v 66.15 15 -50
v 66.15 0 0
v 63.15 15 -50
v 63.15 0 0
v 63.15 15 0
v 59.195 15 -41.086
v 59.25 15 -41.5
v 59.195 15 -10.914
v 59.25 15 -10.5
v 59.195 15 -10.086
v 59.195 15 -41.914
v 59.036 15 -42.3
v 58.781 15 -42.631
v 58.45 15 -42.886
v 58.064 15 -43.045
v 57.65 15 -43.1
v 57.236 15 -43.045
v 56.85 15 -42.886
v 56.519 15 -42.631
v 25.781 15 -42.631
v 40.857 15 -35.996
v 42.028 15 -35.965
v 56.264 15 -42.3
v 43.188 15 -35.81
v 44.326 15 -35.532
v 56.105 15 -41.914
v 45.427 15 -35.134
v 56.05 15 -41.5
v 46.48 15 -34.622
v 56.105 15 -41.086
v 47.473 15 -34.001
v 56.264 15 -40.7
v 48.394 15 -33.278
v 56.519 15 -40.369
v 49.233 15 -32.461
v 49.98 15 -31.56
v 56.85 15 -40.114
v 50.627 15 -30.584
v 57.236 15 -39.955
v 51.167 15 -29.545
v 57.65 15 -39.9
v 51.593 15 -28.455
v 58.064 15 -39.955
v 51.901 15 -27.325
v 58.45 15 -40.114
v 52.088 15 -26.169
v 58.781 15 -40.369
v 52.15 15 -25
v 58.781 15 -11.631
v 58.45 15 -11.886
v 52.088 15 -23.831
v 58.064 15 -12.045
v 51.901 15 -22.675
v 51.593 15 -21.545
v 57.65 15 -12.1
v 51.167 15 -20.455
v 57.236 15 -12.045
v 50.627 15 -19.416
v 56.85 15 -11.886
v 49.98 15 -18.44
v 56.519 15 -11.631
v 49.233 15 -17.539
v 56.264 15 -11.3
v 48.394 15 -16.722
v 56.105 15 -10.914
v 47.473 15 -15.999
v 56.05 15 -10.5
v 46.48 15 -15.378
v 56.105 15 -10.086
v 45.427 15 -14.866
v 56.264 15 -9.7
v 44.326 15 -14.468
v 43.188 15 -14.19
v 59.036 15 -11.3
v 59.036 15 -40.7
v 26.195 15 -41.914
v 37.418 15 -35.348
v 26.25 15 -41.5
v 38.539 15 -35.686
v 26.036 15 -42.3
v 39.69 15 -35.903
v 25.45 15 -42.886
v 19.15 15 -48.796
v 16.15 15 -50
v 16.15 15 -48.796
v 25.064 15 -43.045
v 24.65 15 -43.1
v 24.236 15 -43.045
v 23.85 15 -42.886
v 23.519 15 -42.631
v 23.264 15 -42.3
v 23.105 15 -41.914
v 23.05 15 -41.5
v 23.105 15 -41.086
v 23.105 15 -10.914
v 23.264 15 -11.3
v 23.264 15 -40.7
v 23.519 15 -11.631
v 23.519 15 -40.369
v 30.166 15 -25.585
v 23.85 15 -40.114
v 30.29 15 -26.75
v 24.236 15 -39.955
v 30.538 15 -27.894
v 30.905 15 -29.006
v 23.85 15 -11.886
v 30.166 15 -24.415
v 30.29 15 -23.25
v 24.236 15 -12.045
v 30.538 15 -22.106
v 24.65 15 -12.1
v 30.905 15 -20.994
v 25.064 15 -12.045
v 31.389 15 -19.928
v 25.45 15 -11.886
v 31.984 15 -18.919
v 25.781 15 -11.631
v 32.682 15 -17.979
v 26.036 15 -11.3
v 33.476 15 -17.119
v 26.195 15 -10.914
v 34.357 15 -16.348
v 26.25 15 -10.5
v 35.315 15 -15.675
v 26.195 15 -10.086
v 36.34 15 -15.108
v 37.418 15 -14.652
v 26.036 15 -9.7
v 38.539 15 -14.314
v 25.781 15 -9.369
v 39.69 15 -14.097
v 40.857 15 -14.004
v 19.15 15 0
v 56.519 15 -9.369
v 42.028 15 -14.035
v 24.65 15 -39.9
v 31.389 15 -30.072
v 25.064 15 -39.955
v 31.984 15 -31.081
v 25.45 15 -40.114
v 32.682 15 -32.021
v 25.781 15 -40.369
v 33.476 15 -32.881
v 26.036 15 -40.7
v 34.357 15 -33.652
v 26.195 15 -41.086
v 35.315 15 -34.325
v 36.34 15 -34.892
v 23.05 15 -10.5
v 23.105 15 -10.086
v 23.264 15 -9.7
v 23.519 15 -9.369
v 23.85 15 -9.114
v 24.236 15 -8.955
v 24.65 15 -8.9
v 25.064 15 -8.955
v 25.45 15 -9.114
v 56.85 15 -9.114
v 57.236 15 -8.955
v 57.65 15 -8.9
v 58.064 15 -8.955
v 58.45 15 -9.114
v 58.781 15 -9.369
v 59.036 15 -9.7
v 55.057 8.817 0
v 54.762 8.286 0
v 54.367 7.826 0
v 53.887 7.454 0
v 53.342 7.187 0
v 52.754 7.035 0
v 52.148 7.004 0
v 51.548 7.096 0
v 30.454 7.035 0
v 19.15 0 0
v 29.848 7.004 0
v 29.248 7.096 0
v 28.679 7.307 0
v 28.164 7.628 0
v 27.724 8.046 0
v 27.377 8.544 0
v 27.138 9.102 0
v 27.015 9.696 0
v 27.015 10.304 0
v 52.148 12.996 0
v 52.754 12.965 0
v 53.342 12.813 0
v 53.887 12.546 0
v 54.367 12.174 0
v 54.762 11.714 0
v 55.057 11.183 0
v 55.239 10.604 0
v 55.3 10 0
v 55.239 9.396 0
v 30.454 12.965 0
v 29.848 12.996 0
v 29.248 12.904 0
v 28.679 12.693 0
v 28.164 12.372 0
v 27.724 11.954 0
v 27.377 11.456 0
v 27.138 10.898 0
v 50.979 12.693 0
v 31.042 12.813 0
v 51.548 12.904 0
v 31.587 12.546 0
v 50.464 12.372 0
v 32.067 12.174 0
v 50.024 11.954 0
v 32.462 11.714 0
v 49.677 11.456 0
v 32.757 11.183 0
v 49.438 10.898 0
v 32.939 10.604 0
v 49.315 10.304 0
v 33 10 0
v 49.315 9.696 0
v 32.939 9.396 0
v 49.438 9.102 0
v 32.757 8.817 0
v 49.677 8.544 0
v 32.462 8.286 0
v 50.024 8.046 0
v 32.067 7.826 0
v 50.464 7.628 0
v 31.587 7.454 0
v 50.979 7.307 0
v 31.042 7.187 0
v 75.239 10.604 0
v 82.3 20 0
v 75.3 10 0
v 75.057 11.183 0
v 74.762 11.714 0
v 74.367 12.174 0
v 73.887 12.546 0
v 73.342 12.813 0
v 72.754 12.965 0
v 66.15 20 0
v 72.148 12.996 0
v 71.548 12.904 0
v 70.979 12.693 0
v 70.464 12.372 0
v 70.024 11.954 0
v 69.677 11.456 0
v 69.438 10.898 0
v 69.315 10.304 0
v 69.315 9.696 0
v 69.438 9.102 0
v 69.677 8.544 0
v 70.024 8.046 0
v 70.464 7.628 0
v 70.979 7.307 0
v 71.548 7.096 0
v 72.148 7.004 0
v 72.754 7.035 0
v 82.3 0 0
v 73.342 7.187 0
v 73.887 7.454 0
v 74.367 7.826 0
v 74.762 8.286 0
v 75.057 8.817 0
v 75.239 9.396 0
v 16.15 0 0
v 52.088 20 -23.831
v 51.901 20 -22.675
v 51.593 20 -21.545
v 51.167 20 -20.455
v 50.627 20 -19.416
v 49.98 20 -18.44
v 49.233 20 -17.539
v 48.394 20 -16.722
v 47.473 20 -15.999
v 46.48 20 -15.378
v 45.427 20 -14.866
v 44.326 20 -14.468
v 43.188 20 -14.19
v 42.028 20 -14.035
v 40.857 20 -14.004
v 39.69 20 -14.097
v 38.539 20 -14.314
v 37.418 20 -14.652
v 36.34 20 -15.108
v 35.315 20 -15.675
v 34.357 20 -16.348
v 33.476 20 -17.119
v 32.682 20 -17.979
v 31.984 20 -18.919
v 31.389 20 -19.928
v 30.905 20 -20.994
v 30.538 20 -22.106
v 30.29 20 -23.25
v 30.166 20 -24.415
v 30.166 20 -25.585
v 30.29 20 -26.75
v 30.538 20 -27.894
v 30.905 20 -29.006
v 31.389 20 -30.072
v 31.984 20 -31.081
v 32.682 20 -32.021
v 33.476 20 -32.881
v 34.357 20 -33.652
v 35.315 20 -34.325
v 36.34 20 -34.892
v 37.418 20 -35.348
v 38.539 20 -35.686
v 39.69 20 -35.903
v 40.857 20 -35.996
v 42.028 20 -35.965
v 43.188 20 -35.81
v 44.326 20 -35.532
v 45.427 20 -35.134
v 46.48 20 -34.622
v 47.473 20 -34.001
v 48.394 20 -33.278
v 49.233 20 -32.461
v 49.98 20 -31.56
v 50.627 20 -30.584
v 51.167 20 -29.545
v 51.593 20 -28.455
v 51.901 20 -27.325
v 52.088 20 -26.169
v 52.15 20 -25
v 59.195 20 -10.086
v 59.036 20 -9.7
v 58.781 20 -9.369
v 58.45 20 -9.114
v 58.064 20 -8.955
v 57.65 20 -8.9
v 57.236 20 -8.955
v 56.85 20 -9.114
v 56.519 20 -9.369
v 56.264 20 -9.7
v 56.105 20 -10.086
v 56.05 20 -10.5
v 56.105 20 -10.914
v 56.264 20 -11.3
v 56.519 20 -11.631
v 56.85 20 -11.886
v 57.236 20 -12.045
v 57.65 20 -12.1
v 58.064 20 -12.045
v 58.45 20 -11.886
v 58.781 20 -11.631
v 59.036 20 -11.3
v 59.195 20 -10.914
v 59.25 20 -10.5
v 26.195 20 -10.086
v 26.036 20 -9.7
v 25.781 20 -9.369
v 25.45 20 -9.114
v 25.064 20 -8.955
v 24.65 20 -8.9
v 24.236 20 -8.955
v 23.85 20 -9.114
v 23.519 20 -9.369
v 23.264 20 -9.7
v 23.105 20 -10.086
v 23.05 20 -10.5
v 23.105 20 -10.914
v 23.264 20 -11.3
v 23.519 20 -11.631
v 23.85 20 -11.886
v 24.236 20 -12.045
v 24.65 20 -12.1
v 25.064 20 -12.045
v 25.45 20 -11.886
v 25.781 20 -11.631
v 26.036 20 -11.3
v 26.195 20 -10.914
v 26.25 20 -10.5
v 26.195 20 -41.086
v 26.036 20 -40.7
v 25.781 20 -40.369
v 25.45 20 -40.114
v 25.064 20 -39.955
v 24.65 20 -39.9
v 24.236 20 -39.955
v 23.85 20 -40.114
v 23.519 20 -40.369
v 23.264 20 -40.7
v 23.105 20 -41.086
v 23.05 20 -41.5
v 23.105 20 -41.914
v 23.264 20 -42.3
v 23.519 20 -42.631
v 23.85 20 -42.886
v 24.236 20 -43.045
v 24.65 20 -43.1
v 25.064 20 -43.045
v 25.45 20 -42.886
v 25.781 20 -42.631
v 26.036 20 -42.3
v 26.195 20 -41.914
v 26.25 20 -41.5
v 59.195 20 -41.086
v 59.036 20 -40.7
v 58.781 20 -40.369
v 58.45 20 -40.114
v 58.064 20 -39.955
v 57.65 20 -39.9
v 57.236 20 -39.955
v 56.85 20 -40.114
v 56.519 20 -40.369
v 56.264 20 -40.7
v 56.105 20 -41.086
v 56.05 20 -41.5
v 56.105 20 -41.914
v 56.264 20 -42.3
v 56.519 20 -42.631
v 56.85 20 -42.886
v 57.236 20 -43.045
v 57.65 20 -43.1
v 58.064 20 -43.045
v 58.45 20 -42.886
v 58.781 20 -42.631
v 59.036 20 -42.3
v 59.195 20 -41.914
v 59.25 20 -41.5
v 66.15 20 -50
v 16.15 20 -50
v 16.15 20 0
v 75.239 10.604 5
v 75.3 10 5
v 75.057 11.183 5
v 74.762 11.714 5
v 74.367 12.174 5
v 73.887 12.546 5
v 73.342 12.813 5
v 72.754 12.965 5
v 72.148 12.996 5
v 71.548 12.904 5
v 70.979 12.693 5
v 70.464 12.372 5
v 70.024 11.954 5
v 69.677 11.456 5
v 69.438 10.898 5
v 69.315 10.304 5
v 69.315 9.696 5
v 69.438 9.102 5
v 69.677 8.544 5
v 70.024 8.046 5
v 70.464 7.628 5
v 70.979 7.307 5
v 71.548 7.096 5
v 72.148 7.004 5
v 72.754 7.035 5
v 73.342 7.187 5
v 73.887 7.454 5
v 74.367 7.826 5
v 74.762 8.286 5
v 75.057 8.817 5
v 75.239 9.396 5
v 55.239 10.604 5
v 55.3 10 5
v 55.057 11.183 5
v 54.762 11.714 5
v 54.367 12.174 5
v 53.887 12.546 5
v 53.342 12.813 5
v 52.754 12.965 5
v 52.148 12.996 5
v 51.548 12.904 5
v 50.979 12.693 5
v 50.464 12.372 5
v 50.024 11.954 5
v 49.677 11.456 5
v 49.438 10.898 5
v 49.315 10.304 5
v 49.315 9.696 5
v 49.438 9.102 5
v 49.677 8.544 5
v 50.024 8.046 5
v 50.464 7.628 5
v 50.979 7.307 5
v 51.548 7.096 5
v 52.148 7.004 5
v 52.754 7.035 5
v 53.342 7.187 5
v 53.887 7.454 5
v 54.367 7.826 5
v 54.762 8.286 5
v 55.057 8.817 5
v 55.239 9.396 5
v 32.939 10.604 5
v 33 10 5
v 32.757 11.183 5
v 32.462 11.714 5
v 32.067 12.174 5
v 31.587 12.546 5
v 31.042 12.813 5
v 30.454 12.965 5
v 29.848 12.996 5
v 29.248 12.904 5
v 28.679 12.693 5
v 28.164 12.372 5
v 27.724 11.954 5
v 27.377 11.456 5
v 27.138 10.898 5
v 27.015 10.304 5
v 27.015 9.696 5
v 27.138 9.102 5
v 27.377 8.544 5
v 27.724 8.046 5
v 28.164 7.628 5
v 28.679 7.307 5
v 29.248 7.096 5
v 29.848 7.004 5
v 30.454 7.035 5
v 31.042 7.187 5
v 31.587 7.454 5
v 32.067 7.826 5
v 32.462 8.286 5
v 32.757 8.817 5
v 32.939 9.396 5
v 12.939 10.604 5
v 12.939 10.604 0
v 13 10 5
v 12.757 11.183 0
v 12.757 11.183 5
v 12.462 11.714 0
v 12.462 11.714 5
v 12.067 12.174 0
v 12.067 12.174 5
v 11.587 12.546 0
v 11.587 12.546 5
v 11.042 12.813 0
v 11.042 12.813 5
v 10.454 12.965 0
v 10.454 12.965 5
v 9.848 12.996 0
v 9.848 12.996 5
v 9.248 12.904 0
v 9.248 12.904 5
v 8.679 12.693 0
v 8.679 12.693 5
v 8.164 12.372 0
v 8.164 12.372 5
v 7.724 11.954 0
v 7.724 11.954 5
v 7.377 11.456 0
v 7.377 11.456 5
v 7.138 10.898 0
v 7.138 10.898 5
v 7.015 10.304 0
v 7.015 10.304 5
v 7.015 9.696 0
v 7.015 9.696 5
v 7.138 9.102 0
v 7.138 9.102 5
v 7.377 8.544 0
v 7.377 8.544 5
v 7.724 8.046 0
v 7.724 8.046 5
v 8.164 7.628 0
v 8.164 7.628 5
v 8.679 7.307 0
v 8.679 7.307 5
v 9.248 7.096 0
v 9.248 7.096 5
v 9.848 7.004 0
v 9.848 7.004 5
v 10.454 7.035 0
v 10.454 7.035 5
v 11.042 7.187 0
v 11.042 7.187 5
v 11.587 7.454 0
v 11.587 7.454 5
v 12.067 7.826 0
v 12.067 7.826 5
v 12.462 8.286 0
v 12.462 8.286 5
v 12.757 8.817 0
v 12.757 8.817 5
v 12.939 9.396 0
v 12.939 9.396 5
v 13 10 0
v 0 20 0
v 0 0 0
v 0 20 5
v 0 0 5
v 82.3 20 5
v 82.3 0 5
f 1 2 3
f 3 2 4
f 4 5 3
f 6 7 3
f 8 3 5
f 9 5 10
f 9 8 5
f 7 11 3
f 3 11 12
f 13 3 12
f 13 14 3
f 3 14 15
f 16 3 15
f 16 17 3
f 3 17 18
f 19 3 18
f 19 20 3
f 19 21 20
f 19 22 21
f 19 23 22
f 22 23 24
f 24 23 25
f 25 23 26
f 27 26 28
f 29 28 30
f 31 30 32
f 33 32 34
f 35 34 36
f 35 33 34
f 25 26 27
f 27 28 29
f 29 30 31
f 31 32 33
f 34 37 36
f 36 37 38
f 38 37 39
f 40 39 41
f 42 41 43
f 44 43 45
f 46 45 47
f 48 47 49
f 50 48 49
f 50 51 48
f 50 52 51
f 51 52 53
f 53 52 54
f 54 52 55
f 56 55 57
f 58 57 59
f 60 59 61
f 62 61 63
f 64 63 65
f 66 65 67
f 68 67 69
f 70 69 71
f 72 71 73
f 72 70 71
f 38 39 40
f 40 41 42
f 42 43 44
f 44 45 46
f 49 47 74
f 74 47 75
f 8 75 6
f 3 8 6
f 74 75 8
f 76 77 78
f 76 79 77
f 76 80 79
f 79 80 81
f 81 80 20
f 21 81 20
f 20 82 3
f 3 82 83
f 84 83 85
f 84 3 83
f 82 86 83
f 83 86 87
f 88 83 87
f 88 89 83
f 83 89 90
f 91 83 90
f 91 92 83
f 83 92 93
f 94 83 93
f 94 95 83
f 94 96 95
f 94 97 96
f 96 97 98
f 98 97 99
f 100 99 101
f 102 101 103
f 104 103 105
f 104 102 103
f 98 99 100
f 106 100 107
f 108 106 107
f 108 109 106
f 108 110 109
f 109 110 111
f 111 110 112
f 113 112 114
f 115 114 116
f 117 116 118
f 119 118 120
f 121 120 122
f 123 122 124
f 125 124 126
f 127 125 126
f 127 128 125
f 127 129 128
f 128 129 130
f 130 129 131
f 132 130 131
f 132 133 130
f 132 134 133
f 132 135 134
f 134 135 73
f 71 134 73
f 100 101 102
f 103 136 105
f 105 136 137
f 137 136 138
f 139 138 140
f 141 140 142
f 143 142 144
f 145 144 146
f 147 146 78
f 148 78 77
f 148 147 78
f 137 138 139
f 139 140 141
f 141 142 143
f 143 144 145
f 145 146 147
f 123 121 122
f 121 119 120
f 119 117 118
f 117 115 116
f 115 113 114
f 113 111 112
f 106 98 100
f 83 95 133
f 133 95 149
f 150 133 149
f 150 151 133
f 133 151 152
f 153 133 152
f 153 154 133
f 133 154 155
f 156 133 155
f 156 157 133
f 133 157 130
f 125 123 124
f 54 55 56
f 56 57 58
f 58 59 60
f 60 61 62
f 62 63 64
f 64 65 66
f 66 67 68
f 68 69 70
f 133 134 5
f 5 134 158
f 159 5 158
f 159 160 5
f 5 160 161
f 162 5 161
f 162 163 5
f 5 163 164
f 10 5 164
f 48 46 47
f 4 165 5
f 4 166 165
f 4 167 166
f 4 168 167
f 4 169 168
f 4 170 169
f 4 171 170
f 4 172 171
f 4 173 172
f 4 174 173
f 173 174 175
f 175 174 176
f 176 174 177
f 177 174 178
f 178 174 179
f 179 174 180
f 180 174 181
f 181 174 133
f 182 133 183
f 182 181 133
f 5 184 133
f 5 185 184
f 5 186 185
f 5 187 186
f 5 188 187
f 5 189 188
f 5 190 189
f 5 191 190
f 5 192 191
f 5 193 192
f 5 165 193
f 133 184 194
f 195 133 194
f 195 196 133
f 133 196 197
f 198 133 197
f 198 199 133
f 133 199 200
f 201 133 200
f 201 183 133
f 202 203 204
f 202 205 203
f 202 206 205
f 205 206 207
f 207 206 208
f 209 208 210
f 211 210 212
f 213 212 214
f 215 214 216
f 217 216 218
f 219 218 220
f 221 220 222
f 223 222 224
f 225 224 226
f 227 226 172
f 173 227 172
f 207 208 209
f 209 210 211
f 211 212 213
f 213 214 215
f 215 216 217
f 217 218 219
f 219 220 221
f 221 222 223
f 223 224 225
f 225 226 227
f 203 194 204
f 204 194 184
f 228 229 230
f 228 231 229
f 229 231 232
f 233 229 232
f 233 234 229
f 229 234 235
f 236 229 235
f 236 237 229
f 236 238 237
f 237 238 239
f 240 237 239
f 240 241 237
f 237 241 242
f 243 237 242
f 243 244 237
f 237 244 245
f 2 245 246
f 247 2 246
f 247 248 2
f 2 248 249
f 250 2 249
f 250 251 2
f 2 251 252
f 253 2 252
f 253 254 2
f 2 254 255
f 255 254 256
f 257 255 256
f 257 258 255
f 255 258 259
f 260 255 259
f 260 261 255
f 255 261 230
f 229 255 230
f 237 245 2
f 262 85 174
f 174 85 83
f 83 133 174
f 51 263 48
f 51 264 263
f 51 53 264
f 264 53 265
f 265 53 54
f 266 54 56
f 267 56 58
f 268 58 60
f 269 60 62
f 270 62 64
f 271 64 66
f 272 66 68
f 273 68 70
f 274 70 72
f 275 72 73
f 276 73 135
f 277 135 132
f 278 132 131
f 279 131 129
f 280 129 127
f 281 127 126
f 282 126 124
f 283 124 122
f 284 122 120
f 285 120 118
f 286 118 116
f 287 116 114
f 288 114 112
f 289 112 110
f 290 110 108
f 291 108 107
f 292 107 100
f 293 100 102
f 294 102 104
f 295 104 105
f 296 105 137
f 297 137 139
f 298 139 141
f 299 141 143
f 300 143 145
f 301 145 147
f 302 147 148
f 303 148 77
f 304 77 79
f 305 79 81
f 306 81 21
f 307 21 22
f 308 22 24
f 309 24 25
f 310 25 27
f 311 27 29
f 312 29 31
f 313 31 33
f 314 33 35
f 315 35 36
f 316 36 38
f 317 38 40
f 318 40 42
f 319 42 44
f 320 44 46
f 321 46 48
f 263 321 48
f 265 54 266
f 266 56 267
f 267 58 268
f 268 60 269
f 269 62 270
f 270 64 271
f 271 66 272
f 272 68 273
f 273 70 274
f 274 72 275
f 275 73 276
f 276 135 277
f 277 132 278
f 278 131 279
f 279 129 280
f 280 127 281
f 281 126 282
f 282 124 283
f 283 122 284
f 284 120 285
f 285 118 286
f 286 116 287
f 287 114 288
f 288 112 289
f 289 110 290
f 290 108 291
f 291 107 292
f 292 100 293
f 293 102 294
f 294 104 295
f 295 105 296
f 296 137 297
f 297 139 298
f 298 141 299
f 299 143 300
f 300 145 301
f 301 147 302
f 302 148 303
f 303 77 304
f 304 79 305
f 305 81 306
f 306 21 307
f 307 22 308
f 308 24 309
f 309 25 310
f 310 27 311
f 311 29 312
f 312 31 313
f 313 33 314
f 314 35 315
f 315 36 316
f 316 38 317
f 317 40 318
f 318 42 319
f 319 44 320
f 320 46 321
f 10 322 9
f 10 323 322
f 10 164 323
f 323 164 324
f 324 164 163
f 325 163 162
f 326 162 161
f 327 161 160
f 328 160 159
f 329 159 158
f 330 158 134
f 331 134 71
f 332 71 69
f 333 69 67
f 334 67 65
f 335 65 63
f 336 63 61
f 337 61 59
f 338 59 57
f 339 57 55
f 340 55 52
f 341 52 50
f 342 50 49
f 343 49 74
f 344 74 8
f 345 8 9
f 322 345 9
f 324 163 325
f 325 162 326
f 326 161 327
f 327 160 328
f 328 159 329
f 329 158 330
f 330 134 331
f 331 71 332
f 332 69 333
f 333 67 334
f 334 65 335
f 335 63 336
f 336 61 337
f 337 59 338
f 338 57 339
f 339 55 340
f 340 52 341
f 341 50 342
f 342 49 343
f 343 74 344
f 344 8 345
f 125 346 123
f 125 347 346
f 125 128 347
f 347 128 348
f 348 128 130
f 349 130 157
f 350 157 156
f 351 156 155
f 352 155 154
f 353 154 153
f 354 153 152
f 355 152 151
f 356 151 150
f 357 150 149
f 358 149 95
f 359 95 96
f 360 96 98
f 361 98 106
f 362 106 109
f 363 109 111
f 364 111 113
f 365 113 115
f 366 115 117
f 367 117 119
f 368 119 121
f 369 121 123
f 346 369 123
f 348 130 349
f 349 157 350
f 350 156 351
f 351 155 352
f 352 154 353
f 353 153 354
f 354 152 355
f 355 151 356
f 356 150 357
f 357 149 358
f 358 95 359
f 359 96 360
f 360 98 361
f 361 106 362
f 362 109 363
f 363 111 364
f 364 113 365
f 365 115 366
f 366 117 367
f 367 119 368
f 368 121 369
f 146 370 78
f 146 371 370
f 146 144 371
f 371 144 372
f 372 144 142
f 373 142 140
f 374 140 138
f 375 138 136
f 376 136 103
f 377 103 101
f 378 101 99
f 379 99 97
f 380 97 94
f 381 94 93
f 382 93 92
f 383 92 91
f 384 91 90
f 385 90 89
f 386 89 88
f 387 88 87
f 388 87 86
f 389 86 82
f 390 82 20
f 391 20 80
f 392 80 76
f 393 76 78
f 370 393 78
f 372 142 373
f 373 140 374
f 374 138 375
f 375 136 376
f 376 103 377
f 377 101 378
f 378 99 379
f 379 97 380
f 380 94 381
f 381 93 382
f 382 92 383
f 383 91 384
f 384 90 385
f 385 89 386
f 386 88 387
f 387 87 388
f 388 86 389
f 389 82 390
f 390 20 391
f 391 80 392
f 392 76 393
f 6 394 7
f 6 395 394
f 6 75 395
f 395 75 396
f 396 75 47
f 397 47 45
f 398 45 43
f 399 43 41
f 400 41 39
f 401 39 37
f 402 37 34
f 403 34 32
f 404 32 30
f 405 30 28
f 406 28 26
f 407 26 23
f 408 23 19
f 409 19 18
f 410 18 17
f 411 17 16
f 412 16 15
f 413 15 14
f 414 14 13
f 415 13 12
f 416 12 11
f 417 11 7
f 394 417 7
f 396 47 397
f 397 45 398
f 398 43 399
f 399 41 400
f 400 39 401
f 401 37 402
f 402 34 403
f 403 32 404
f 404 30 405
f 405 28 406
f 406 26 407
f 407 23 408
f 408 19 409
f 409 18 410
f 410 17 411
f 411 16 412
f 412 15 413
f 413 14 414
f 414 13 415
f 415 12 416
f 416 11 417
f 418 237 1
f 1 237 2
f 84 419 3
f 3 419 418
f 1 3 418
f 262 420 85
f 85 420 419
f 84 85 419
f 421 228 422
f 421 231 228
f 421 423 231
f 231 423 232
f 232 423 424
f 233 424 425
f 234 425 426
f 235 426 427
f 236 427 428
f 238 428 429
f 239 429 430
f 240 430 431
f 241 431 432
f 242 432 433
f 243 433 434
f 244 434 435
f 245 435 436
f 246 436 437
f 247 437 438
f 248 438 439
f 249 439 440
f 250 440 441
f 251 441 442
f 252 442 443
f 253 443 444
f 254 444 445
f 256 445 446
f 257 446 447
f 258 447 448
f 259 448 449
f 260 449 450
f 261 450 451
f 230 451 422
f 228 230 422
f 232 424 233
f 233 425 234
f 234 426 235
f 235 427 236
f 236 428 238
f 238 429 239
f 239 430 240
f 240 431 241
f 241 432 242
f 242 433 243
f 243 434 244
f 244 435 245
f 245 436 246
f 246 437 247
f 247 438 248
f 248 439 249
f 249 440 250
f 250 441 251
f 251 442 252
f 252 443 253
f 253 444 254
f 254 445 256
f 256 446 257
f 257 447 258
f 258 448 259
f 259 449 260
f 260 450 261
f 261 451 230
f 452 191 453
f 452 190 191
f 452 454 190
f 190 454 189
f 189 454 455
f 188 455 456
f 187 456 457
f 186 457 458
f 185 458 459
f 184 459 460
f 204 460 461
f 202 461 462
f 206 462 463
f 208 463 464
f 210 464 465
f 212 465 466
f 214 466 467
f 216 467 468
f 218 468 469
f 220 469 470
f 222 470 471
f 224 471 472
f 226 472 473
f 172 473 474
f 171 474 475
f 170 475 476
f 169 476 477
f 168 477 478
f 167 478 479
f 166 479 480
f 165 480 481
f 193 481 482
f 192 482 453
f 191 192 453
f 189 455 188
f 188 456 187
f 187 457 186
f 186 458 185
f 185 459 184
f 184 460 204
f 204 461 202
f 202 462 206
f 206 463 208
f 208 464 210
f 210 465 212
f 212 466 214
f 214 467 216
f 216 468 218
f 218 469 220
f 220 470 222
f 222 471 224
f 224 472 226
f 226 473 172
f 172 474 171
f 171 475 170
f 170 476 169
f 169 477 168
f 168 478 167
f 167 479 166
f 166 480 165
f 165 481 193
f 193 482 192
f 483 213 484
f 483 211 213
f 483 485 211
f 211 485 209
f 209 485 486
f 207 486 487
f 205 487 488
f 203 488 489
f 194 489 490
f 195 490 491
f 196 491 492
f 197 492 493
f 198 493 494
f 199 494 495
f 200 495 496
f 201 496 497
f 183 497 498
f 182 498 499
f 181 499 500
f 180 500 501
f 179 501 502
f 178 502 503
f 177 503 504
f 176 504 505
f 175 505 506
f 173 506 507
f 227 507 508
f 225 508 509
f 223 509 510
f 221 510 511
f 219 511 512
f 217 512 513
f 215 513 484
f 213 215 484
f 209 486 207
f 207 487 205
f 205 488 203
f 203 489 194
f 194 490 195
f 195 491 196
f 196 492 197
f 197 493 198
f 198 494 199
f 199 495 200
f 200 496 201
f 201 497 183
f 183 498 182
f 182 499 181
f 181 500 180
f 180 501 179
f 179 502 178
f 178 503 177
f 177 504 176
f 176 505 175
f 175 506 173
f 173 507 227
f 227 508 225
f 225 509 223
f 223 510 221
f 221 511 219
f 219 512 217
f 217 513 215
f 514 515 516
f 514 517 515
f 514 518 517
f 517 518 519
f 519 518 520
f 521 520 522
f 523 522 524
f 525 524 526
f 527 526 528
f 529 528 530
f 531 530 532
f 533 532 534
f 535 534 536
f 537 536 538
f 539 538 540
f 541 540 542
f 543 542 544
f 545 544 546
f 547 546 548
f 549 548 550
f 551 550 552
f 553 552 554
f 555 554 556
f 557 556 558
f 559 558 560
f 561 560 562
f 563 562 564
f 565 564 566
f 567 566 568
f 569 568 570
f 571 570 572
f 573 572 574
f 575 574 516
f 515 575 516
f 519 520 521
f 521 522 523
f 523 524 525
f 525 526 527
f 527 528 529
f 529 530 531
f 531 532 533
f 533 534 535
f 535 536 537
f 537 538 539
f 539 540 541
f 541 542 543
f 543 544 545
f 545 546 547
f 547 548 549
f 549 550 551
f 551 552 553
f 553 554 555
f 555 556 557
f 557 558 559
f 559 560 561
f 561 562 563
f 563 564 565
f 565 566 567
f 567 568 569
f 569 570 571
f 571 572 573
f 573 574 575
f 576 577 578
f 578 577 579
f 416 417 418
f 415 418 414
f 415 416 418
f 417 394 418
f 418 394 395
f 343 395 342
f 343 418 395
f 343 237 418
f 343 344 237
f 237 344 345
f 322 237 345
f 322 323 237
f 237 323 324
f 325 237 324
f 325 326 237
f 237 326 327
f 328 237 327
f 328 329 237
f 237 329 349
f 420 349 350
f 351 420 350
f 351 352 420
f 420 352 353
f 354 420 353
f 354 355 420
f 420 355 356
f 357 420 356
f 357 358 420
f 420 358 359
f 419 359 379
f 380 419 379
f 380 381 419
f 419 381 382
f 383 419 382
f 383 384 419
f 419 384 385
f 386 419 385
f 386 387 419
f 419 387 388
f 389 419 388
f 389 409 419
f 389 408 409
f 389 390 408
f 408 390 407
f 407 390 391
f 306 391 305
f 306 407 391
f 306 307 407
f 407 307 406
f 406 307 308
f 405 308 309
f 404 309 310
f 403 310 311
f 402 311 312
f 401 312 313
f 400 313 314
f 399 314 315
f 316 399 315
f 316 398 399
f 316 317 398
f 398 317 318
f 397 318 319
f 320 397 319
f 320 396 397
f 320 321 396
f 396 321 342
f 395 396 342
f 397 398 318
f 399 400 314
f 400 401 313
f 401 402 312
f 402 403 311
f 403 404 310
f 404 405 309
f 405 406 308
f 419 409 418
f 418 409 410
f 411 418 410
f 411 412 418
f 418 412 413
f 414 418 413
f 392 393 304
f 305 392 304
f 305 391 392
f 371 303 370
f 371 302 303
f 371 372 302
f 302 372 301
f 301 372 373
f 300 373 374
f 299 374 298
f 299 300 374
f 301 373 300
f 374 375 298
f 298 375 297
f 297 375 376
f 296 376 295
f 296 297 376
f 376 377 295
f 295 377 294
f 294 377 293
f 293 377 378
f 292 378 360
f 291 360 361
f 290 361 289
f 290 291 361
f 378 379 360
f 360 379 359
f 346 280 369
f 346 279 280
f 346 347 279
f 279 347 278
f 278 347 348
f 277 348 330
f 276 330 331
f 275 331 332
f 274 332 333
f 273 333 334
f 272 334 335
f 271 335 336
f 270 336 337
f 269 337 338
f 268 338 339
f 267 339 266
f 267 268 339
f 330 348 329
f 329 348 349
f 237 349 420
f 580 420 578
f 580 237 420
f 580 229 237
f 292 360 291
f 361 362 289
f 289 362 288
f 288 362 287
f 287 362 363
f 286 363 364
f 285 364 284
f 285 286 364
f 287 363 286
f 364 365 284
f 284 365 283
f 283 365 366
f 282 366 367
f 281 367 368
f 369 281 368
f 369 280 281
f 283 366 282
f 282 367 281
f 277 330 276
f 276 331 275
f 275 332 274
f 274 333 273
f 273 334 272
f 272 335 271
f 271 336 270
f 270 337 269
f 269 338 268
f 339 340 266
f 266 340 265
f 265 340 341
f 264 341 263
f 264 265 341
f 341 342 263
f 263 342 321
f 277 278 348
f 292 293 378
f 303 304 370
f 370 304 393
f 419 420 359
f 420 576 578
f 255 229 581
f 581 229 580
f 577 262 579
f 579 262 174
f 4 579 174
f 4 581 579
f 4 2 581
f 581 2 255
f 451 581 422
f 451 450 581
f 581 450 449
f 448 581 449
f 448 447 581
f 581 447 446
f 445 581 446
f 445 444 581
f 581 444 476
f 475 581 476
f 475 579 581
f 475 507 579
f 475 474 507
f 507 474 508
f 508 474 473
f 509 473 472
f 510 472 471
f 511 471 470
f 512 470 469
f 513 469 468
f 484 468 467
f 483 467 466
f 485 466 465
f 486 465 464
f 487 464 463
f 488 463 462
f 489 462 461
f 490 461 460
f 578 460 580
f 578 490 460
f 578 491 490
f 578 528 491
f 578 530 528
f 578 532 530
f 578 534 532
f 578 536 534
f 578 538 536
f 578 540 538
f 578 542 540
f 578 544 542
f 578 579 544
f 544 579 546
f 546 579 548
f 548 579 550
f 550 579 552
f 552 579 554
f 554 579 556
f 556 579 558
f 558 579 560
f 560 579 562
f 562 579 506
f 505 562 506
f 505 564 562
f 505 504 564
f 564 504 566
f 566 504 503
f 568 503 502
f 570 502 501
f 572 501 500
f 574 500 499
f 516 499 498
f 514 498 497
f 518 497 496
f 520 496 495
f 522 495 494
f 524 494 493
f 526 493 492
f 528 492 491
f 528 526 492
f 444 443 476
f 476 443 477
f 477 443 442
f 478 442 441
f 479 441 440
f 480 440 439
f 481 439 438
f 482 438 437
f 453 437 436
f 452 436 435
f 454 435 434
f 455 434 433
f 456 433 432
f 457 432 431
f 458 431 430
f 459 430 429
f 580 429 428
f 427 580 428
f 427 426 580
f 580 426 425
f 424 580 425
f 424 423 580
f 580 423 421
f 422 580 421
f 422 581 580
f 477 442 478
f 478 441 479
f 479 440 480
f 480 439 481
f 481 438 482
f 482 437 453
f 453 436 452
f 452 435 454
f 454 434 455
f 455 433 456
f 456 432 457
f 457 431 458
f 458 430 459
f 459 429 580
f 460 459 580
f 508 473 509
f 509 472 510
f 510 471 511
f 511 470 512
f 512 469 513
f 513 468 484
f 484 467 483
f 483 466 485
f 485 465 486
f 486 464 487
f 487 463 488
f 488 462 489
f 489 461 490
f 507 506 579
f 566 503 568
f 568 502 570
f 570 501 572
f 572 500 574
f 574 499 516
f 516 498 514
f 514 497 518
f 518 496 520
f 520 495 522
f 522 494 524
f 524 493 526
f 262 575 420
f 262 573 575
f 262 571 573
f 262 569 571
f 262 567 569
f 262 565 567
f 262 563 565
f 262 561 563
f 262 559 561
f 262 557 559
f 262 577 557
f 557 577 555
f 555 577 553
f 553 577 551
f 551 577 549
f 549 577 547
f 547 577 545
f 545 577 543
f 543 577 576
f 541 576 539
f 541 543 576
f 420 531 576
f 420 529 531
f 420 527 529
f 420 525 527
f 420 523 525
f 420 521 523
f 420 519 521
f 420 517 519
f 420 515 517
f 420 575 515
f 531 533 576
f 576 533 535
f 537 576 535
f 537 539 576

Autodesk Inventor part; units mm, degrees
ref_plane "YZ Plane" through (0, 0, 0) normal (1, 0, 0) x (0, 1, 0)
ref_plane "XZ Plane" through (0, 0, 0) normal (0, 1, 0) x (-1, 0, 0)
ref_plane "XY Plane" through (0, 0, 0) normal (0, 0, 1) x (1, 0, 0)
sketch "Sketch1" plane through (0, 0, 0) normal (0, 0, 1) x (1, 0, 0)
  line L0 (0, 0) -> (82.3, 0)
  line L1 (82.3, 0) -> (82.3, 20)
  line L2 (82.3, 20) -> (0, 20)
  line L3 (0, 20) -> (0, 0)
  line L4 (-2.8173, 10) -> (83.4818, 10)
  line L5 (41.15, 24.9256) -> (41.15, -5.5134)
  line L6 (41.15, -5.5134) -> (20, -5.5134) construction
  line L7 (41.15, -5.5134) -> (62.3, -5.5134) construction
  line L8 (20, -5.5134) -> (20, 27.3565) construction
  line L9 (62.3, -5.5134) -> (62.3, 27.7135) construction
  line L10 (20, -5.5134) -> (10, -5.5134) construction
  line L11 (10, -5.5134) -> (10, 28.7251)
  circle A0 centre (10, 10) radius 3
  line L12 (20, -5.5134) -> (30, -5.5134) construction
  line L13 (30, -5.5134) -> (30, 27.7135)
  circle A1 centre (30, 10) radius 3
  line L14 (62.3, -5.5134) -> (72.3, -5.5134) construction
  line L15 (72.3, -5.5134) -> (72.3, 24.2533)
  line L16 (62.3, -5.5134) -> (52.3, -5.5134)
  line L17 (52.3, -5.5134) -> (52.3, 29.0456)
  circle A2 centre (52.3, 10) radius 3
  circle A3 centre (72.3, 10) radius 3
  dimension "d0" = 82.3
  dimension "d1" = 20
  dimension "d2" = 21.15
  dimension "d3" = 21.15
  dimension "d4" = 10
  dimension "d5" = 6
  dimension "d6" = 10
  dimension "d7" = 6
  dimension "d8" = 10
  dimension "d9" = 10
  dimension "d10" = 6
  dimension "d11" = 6
extrude "Extrusion1" add sketch "Sketch1" along normal blind 5 contours L3 L4 A0 L11 L0 | L11 A0 L4 A1 L13 L0 | L3 L2 L11 A0 L4 | L13 A1 L4 L5 L0 | L5 L4 A2 L17 L0 | A0 L11 L2 L13 A1 L4 | L17 A2 L4 A3 L15 L0 | L5 L2 L17 A2 L4 | L4 A1 L13 L2 L5 | L15 A3 L4 L1 L0 | A2 L17 L2 L15 A3 L4 | L4 A3 L15 L2 L1
sketch "Sketch2" plane through (0, 20, 0) normal (0, 1, 0) x (1, 0, 0)
  line L0 (82.3, 0) -> (0, 0) projected
  line L1 (0, 0) -> (0, -5) projected
  line L2 (82.3, 0) -> (82.3, -5) projected
  line L3 (41.15, 64.2436) -> (41.15, -26.8176)
  line L4 (41.15, 0) -> (66.15, 0)
  line L5 (66.15, 0) -> (66.15, 50)
  line L6 (66.15, 50) -> (16.15, 50)
  line L7 (16.15, 50) -> (16.15, 0)
  circle A0 centre (41.15, 25) radius 11
  line L8 (41.15, 64.2436) -> (57.65, 64.2436)
  line L9 (57.65, 6.1421) -> (5.0097, 6.1421)
  circle A1 centre (57.65, 41.5) radius 1.6
  circle A2 centre (24.65, 41.5) radius 1.6
  circle A3 centre (24.65, 10.5) radius 1.6
  circle A4 centre (57.65, 10.5) radius 1.6
  dimension "d14" = 25
  dimension "d15" = 50
  dimension "d16" = 50
  dimension "d17" = 22
  dimension "d20" = 16.5
  dimension "d22" = 3.2
  dimension "d23" = 3.2
  dimension "d24" = 3.2
  dimension "d25" = 3.2
extrude "Extrusion2" add sketch "Sketch2" against normal blind 5 contours L0 L3 A0 L6 L5 | L0 L7 L9 L3 | L9 L7 L6 L3 A0
sketch "Sketch3" plane through (16.15, 20, -50) normal (-1, 0, 0) x (0, 0, 1)
  line L0 (50, -5) -> (0, -5) projected
  line L1 (50, 0) -> (50, -5) projected
  line L2 (1.2041, -5) -> (50, -20)
  line L3 (50, -20) -> (50, -5)
  line L4 (50, -20) -> (50, -5)
  line L5 (50, -5) -> (1.2041, -5)
extrude "Extrusion3" add sketch "Sketch3" against normal blind 3
sketch "Sketch4" plane through (66.15, 20, 0) normal (1, 0, 0) x (0, 0, -1)
  line L0 (50, -5) -> (0, -5) projected
  line L1 (0, -20) -> (50, -5)
  line L2 (50, -5) -> (1.261, -5)
  line L3 (0, -5) -> (0, -20)
extrude "Extrusion4" add sketch "Sketch4" against normal blind 3
properties part number "z motor mount" material "ABS Plastic"
